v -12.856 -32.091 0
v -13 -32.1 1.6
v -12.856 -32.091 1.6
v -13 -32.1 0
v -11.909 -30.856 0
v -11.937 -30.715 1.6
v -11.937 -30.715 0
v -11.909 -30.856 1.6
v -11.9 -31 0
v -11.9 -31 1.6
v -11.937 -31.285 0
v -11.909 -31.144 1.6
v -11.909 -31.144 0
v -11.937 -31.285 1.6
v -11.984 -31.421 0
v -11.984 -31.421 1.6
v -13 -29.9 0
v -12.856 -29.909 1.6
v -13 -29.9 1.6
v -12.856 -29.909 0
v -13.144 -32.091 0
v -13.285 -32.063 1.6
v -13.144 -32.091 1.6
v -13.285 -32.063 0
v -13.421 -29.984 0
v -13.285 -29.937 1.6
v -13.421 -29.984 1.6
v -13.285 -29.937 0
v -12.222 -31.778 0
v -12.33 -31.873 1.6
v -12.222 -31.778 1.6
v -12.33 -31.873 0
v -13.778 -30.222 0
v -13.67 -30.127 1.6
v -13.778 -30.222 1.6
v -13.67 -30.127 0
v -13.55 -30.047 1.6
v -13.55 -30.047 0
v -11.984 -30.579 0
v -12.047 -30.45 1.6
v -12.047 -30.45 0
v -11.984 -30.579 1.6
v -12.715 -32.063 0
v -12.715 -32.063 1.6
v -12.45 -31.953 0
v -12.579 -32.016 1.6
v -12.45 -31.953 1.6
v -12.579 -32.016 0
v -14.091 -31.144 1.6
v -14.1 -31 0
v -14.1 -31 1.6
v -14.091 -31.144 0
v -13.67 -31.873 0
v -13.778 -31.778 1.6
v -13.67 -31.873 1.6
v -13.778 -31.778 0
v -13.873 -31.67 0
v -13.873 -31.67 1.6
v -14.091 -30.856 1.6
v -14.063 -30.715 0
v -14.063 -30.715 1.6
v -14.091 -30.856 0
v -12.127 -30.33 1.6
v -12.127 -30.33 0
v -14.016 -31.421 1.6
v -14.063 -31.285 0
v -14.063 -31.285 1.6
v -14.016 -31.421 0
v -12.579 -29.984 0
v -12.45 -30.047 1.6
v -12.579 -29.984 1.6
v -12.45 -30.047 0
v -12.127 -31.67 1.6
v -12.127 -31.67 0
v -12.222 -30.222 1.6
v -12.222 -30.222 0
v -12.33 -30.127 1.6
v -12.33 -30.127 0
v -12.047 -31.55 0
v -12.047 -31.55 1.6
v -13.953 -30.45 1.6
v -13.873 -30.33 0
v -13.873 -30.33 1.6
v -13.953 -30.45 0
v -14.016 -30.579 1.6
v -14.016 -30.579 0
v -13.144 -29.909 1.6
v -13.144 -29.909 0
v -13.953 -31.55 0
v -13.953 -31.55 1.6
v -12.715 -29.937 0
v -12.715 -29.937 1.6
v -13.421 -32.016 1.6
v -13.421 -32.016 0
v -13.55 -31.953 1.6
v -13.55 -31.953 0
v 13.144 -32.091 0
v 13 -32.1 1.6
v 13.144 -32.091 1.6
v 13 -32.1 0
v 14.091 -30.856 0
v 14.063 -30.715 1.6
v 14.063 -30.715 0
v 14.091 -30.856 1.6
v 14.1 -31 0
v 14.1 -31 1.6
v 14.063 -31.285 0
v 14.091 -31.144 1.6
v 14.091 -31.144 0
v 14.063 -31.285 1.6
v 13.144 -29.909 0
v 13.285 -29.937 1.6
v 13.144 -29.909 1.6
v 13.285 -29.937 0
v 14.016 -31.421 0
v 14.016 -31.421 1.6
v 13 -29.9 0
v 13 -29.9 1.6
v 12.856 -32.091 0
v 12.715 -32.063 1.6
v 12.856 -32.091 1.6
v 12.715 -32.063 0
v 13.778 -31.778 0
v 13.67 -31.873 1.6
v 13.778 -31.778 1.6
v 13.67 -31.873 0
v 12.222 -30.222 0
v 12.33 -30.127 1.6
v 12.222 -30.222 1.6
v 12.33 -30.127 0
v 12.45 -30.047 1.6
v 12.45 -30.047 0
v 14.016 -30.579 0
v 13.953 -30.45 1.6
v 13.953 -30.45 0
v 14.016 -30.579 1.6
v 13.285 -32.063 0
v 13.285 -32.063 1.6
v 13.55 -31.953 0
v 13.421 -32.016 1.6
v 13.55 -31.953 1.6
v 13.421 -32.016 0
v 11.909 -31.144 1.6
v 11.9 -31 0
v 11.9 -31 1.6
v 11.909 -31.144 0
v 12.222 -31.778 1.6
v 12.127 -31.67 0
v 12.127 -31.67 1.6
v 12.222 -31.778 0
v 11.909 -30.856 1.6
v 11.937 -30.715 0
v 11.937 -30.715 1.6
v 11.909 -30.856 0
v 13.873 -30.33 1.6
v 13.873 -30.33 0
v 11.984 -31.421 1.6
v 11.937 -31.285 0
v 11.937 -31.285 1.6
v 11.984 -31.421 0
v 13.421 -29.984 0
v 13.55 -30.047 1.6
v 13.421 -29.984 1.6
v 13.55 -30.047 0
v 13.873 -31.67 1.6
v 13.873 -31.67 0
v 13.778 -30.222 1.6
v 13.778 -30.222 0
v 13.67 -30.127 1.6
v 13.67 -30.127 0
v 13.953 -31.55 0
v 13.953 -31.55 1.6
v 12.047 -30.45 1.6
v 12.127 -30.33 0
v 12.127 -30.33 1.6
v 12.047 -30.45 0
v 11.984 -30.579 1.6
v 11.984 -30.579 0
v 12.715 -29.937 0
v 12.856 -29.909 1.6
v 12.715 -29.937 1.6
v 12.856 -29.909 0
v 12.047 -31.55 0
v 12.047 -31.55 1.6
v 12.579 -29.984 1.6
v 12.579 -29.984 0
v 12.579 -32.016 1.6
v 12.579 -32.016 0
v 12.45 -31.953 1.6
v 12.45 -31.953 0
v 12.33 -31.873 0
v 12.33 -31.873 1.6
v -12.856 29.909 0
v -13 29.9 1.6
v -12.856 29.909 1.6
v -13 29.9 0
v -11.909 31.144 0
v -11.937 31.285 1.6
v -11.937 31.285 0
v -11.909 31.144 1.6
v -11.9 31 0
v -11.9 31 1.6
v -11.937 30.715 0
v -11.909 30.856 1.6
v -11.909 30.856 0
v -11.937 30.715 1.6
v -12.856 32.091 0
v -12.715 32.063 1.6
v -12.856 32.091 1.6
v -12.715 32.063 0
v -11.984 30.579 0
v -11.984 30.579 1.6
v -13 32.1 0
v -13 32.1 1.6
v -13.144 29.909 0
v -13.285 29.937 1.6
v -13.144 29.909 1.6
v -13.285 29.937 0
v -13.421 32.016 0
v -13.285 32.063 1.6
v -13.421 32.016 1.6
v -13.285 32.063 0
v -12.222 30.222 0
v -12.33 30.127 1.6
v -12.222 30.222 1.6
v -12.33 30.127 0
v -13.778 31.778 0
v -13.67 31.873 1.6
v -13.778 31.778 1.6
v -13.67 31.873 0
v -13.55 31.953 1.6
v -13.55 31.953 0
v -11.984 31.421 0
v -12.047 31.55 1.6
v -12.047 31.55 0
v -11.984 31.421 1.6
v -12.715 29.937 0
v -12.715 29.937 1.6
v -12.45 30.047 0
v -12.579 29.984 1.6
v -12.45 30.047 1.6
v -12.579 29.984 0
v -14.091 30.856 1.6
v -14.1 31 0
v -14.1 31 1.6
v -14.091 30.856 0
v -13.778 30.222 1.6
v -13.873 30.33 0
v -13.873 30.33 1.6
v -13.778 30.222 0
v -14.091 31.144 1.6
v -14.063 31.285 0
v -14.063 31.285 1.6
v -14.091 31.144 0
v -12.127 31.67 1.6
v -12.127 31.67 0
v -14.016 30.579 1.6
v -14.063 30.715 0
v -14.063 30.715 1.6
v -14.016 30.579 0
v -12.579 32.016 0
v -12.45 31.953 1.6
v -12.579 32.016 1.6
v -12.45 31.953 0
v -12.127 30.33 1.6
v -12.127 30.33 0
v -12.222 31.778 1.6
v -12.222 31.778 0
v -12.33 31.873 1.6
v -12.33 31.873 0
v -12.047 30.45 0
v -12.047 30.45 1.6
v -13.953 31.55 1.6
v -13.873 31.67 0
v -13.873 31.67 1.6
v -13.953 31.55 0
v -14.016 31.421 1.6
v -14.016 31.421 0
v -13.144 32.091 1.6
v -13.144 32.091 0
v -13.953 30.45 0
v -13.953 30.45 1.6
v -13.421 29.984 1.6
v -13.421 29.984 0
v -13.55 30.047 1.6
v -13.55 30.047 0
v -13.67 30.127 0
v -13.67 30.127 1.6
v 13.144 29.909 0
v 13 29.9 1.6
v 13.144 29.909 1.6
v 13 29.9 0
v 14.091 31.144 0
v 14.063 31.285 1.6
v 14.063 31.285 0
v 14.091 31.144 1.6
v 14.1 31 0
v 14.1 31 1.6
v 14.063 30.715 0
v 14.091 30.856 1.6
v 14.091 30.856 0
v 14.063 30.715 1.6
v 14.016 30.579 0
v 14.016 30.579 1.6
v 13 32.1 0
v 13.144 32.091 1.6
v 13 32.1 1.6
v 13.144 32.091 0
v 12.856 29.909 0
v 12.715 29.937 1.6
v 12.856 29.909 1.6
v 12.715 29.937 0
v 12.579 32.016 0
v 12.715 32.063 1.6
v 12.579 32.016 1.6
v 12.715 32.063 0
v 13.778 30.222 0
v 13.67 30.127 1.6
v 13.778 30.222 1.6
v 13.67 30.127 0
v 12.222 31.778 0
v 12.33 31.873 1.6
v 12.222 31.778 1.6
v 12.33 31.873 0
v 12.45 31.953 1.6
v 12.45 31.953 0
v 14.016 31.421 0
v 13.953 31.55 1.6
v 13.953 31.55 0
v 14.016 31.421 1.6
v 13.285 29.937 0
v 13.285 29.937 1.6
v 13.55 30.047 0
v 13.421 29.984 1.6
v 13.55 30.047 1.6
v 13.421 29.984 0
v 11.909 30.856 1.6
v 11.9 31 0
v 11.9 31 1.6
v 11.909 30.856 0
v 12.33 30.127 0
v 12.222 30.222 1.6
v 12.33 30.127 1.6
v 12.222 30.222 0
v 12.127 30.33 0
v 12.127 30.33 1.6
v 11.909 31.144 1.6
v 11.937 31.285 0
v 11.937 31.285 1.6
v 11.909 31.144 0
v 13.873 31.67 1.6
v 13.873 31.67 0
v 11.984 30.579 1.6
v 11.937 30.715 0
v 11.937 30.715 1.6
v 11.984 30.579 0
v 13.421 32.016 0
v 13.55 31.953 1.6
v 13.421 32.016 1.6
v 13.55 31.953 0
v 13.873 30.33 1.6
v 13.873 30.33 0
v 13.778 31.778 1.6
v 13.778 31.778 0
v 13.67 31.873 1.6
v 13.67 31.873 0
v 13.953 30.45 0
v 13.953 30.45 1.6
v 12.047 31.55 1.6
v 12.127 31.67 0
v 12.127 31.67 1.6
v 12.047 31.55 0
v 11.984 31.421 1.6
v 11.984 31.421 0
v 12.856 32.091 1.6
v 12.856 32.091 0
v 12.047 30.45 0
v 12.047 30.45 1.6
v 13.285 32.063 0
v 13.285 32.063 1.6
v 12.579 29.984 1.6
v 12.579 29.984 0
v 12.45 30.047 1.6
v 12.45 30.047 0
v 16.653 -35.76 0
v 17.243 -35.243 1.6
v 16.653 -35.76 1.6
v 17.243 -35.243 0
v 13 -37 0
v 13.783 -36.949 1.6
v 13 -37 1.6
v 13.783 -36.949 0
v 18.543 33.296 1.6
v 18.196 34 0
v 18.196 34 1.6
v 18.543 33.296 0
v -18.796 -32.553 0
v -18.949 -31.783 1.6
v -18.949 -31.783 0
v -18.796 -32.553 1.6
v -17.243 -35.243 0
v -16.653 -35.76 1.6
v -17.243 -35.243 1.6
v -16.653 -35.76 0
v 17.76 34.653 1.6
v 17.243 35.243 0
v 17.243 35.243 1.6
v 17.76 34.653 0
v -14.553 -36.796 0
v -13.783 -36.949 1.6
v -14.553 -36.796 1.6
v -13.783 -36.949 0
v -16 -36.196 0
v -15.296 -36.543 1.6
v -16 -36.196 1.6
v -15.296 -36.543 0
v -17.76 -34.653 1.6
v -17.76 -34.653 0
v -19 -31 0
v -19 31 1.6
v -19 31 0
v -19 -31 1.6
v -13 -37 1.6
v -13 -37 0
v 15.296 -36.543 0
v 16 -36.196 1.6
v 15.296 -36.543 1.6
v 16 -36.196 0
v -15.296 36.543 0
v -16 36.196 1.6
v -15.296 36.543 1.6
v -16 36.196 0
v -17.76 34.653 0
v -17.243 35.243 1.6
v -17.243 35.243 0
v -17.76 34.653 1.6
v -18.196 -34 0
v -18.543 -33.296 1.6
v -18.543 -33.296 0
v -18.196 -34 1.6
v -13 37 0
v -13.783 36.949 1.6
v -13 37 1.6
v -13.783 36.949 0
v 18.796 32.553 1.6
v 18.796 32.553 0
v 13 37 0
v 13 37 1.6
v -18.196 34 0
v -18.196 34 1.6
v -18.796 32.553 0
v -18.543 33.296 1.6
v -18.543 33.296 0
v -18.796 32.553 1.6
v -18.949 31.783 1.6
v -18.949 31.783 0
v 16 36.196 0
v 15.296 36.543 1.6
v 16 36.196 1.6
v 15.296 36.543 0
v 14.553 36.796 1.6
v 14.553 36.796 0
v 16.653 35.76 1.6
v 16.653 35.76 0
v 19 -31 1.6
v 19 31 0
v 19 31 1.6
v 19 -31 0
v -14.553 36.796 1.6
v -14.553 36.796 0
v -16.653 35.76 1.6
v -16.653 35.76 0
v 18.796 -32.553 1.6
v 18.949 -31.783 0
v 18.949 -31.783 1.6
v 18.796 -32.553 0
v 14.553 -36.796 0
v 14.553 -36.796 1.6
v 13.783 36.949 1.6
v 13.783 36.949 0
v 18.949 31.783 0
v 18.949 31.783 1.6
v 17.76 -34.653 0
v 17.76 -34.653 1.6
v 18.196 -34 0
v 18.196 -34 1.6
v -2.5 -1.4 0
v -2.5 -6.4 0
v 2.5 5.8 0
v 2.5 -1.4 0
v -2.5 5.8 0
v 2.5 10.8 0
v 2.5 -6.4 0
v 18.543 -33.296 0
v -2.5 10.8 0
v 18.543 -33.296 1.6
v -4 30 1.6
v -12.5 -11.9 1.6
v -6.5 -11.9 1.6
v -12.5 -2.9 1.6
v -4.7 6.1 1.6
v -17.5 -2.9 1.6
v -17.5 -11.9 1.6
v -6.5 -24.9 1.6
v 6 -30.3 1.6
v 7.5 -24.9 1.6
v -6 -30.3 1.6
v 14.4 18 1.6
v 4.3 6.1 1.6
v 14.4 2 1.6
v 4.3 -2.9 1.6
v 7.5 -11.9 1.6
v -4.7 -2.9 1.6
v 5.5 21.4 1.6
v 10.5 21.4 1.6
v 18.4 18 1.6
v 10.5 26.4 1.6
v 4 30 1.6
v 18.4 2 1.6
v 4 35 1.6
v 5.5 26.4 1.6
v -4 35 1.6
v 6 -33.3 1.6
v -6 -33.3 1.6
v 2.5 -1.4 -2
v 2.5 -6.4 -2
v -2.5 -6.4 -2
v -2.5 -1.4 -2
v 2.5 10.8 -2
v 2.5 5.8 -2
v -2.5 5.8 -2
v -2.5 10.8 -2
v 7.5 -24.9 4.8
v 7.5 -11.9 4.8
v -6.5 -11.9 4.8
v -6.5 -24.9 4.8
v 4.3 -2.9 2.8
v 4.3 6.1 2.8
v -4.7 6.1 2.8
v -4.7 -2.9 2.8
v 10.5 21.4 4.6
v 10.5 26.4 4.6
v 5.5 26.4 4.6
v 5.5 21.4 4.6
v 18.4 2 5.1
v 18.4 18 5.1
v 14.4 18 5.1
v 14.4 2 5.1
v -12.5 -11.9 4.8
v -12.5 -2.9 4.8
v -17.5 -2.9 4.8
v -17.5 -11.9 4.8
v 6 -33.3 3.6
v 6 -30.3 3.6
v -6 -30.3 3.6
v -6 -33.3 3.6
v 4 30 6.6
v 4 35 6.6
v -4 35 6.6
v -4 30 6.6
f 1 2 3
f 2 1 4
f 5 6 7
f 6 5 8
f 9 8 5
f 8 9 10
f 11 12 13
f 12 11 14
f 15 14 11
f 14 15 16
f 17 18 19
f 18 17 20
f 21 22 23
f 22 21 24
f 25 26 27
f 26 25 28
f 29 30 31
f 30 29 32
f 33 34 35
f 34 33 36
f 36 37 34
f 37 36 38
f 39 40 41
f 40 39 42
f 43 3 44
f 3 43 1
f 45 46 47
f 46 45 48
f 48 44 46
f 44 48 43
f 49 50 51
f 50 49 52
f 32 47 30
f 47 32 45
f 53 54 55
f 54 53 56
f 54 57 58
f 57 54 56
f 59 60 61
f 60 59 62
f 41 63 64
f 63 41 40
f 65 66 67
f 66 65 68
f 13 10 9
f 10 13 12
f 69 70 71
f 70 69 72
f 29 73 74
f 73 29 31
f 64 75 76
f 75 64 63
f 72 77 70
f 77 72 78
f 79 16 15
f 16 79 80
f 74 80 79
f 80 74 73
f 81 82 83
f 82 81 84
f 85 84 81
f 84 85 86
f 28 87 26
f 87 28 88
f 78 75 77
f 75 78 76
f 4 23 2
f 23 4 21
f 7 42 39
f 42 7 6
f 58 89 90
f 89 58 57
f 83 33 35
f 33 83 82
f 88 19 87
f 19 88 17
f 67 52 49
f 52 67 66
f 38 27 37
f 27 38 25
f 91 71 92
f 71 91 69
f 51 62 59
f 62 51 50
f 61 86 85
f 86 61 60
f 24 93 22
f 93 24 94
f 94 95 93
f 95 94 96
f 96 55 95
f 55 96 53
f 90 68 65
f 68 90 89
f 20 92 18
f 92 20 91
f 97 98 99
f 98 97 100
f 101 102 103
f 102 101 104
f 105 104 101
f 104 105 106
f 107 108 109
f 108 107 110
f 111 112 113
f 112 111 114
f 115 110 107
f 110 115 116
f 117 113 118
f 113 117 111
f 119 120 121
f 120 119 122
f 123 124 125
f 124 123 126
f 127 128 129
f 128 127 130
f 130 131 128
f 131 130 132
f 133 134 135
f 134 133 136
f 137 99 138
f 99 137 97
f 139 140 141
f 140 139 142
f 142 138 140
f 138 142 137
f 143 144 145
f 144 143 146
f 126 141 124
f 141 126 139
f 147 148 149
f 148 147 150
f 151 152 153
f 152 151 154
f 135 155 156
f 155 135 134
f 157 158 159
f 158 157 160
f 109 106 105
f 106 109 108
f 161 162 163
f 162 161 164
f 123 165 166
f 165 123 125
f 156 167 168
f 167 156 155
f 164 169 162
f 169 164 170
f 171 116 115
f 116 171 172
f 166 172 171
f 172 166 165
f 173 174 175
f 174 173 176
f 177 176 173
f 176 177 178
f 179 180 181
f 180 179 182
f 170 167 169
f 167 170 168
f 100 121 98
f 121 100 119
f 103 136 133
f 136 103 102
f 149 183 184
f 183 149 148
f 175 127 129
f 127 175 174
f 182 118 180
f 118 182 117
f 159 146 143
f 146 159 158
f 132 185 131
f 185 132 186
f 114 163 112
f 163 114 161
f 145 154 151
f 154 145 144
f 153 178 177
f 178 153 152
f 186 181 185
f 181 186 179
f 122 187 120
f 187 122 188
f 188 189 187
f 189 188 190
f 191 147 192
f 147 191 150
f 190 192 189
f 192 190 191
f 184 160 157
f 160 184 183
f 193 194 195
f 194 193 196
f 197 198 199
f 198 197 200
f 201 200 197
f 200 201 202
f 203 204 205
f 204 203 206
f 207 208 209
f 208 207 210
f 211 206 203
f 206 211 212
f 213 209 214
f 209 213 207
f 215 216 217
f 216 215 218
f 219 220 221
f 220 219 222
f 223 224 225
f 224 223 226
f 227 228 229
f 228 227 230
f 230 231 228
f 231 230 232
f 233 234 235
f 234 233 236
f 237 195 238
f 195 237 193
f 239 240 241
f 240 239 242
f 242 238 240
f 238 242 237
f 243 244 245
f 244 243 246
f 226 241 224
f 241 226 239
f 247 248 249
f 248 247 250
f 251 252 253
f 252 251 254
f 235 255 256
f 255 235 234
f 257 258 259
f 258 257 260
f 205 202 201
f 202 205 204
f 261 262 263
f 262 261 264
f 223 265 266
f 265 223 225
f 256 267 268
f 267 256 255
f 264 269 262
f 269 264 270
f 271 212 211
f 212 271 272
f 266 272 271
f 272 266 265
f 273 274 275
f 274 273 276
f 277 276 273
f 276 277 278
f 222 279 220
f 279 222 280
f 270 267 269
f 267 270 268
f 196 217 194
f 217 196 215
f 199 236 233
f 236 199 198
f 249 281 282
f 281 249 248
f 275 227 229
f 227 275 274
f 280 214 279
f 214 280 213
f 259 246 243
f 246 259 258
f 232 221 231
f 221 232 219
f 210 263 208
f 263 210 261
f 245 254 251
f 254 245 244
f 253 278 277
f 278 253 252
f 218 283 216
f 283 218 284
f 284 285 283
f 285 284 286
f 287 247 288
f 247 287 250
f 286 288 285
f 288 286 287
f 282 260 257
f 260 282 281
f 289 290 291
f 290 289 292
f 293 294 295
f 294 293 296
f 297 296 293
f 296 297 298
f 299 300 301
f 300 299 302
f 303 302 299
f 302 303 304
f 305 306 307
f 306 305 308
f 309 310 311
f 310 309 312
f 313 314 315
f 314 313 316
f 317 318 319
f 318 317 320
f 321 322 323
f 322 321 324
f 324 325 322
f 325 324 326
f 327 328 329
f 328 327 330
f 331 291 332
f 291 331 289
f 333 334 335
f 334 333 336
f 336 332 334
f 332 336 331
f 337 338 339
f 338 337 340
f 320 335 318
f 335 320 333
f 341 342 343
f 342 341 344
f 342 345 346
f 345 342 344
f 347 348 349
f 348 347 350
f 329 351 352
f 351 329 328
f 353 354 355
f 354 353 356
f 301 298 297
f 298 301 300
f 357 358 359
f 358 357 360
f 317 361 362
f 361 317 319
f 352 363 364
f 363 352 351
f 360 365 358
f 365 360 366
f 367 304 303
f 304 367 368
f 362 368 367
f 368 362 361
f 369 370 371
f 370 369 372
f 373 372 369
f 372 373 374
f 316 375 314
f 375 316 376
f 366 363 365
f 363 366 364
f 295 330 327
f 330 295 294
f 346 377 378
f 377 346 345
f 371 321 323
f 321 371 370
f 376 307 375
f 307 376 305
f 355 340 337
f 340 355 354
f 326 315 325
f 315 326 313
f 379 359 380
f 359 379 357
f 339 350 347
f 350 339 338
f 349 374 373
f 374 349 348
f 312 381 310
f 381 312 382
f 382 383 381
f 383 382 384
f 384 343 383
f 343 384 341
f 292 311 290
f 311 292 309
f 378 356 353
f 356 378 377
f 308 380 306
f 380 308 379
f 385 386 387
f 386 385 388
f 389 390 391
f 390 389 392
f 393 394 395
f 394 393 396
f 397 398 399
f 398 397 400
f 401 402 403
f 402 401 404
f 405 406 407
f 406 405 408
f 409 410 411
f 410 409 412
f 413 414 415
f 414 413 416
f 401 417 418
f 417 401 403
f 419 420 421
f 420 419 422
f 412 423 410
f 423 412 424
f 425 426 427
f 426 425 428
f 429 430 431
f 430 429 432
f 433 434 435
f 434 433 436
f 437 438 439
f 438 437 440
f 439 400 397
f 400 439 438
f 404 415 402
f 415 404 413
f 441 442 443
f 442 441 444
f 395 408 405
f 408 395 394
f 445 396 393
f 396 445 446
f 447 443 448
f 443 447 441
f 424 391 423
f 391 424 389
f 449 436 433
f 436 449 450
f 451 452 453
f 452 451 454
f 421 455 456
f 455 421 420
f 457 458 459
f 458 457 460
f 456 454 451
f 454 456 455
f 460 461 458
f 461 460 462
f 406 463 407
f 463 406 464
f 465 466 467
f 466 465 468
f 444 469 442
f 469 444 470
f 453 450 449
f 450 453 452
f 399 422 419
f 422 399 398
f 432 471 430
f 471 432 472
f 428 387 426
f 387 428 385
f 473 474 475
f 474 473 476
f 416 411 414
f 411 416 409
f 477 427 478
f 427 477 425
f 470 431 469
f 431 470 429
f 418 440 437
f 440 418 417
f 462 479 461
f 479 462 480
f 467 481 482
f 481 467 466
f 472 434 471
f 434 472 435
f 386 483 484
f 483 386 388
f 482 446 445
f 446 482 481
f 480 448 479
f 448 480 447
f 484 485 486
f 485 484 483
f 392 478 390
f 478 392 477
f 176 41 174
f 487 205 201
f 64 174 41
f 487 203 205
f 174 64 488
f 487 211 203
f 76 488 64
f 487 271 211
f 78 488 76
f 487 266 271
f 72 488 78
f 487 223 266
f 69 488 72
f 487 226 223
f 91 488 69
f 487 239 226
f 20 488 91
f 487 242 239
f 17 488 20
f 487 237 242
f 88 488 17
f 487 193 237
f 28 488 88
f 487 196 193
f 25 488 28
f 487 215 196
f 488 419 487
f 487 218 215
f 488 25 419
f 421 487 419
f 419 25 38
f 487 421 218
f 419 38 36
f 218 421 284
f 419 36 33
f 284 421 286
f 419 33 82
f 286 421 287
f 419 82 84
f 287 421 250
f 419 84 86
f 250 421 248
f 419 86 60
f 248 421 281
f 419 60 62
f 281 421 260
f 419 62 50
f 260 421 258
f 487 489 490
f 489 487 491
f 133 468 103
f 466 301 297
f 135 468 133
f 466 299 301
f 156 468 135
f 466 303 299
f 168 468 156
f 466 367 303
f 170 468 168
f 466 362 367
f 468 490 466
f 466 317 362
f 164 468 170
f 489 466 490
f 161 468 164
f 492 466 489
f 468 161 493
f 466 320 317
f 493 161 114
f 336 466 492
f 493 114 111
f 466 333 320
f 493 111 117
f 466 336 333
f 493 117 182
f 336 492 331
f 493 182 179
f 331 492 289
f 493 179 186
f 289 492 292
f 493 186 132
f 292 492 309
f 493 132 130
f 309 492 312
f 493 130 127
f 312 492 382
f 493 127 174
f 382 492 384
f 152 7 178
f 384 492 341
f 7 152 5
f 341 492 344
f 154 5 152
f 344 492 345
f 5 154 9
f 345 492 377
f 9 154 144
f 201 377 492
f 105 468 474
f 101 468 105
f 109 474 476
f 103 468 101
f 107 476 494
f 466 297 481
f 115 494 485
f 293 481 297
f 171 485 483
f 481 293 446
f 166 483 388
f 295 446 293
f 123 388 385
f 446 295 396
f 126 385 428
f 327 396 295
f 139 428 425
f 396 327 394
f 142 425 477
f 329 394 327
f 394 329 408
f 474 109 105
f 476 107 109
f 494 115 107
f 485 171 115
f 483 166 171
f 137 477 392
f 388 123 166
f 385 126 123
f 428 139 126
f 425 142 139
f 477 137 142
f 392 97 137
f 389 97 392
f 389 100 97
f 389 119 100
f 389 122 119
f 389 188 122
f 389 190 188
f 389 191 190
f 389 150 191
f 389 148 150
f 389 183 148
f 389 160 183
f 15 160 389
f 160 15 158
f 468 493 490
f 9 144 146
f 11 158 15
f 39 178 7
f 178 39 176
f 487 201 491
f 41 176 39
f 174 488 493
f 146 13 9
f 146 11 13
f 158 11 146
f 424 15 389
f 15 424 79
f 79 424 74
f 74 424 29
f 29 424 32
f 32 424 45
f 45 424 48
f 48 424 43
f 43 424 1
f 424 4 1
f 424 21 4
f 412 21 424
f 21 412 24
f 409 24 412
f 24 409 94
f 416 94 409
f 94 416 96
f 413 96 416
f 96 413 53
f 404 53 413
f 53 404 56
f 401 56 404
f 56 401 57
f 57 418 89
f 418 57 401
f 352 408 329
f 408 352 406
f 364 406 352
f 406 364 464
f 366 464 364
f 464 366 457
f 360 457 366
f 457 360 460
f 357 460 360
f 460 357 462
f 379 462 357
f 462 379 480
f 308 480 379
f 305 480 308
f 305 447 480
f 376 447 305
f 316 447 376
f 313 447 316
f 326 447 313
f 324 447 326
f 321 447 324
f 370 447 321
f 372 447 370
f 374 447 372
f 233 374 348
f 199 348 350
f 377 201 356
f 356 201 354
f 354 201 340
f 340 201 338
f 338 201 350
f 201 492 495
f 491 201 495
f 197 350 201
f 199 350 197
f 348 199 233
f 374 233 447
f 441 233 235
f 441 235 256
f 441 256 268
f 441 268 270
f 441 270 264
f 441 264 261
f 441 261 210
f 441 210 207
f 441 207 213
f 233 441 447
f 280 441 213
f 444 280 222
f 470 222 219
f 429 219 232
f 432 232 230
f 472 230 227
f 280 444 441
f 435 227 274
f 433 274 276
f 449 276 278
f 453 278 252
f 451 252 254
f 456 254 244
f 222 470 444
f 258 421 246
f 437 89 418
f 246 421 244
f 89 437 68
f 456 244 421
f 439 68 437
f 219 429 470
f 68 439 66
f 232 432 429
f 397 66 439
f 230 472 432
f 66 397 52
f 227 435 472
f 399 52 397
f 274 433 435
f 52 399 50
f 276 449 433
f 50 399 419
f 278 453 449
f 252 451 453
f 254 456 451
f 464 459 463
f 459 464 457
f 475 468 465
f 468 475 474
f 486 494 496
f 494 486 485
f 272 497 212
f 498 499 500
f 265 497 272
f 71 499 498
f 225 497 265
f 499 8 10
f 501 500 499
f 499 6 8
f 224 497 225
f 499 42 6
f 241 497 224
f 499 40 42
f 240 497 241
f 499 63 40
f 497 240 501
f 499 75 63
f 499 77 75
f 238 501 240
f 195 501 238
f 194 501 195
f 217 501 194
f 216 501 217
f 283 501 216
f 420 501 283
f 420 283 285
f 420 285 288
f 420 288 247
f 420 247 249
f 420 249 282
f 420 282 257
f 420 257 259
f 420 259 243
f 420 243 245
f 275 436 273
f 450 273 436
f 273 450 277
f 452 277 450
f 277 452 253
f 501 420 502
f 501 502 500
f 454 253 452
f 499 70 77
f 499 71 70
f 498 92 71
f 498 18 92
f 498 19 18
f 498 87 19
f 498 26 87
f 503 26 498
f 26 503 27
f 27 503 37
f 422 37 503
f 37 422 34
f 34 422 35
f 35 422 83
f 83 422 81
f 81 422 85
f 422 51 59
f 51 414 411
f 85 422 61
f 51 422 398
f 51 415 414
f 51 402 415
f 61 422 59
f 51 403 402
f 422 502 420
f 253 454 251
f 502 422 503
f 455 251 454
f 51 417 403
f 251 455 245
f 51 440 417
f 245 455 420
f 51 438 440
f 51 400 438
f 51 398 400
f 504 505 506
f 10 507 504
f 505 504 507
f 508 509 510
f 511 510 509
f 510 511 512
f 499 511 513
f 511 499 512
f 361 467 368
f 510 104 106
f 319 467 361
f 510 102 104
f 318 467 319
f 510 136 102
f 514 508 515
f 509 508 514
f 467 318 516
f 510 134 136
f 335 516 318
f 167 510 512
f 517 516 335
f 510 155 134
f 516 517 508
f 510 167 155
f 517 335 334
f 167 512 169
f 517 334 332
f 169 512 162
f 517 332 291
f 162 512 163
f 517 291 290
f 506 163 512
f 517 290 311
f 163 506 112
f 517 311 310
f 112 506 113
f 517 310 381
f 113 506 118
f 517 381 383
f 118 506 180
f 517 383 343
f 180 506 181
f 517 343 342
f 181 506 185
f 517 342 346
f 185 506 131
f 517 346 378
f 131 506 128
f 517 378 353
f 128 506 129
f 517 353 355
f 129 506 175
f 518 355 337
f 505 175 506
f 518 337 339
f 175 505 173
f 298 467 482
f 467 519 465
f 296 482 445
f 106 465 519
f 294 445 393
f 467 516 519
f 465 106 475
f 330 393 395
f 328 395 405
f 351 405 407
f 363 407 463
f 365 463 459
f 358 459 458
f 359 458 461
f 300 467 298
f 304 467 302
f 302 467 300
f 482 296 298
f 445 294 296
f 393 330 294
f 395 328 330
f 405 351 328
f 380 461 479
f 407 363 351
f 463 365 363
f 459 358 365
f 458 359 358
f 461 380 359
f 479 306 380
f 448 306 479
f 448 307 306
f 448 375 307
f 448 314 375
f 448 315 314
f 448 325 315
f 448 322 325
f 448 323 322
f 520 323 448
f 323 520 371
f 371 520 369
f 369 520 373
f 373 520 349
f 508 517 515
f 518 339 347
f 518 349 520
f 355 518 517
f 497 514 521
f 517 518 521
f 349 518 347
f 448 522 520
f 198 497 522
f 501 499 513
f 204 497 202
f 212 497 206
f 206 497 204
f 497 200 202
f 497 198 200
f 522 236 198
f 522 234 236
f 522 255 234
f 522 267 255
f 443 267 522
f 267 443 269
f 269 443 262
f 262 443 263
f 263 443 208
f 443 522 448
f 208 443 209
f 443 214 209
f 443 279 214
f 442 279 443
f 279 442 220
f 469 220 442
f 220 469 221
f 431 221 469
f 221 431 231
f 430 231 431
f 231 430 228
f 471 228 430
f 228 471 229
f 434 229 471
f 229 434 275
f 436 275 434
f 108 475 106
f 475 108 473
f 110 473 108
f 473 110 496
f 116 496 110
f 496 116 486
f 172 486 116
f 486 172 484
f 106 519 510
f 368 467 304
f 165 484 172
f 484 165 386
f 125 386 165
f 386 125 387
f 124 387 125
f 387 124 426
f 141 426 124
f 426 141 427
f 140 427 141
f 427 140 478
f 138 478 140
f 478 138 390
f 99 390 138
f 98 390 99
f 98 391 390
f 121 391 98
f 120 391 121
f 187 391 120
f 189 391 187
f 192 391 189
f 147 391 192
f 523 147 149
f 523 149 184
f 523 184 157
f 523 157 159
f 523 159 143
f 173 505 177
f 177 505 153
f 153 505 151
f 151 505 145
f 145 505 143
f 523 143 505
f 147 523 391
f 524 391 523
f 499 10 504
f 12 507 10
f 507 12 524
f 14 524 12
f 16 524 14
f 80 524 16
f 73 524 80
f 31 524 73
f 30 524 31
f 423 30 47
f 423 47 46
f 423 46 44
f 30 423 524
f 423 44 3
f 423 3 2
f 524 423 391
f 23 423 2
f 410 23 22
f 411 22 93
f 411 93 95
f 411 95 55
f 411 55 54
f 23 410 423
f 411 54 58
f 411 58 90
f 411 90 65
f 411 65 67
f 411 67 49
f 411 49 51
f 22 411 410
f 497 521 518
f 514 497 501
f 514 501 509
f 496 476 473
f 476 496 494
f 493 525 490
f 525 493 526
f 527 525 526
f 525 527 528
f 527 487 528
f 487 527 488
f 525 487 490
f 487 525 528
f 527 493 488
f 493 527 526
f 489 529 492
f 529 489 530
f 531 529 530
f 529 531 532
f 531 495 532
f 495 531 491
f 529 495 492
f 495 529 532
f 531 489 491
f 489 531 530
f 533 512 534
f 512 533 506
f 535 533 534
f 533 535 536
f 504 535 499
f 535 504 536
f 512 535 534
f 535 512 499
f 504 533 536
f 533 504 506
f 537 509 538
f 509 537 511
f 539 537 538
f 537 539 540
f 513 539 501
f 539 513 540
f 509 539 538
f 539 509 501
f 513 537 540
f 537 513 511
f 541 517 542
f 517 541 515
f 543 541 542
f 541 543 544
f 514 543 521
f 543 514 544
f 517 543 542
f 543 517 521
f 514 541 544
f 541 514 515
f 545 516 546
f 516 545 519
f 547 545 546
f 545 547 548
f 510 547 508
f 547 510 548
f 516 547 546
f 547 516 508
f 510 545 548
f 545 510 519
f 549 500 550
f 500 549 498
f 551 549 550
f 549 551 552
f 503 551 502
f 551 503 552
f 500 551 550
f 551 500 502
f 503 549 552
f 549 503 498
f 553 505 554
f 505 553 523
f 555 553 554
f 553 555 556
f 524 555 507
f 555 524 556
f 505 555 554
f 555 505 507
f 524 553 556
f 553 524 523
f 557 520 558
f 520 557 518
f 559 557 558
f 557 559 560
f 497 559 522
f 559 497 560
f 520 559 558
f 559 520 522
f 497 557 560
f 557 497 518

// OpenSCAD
// STRATOSDRONE — PCB DUMMY at real size, for print-fit testing only.
//
// A stand-in for the real mainboard so you can check, in plastic, that the
// board drops onto the four bosses, the bottom sensors line up with the floor
// window, and the edge connectors (USB, camera, battery) line up with the
// frame's openings — BEFORE committing to the actual PCB. Outline + holes come
// straight from design.py BOARD; component blocks use the design.py placements.
// Print flat at low infill; it is a size/alignment gauge, not a functional PCB.
//
//   openscad -o stl/pcb_dummy.stl --export-format binstl pcb_dummy.scad
// SPDX-License-Identifier: CERN-OHL-P-2.0
$fn = 48;
eps = 0.01;

/* ---- board envelope (design.py BOARD) — origin at a corner, 0..bw / 0..bh ---- */
bw = 38; bh = 74; br = 6; bt = 1.6;            // width, length, corner_r, thickness
mh_d = 2.2;                                     // M2 clearance hole
holes = [[6,6],[32,6],[6,68],[32,68]];          // mount holes (26 x 62 pitch)

module board2d() {
    translate([bw/2, bh/2]) offset(br) square([bw-2*br, bh-2*br], center=true);
}

// a top-side component block, centred at board (px,py)
module comp(px, py, sx, sy, hz) {
    translate([px-sx/2, py-sy/2, bt]) cube([sx, sy, hz]);
}

module pcb_dummy() {
    // centre the board on the origin so it sits in the frame bay like the real one
    translate([-bw/2, -bh/2, 0]) {
        difference() {
            linear_extrude(bt) board2d();
            for (p = holes) translate([p[0], p[1], -eps]) cylinder(d=mh_d, h=bt+2*eps);
        }
        // --- key TOP components (ref : design.py PLACE) ---
        comp(19.5, 18.6, 14, 13, 3.2);   // U3  ESP32-C6 module  (tallest → canopy clearance)
        comp(18.8, 38.6,  9,  9, 1.2);   // U1  ESP32-P4
        comp(27.0, 60.9,  5,  5, 3.0);   // L1  buck inductor
        comp(35.4, 47.0,  4, 16, 3.5);   // SW1/SW2 reset+boot, right edge
        // --- edge connectors (must line up with the frame openings) ---
        comp( 4.0, 29.6,  5,  9, 3.2);   // J2  USB-C, LEFT edge
        comp(19.0,  5.2, 12,  3, 2.0);   // J4  camera FFC, NOSE
        comp(19.0, 69.5,  8,  5, 5.0);   // J1  battery JST, REAR edge
        // --- bottom-side downward sensors (should sit over the floor window) ---
        for (p = [[19,33.1],[19,45.3]])
            translate([p[0]-2.5, p[1]-2.5, -2]) cube([5, 5, 2]);   // U8 ToF / U9 flow
    }
}

pcb_dummy();
echo(str("PCB DUMMY ", bw, " x ", bh, " x ", bt, " mm, holes at 26x62"));
